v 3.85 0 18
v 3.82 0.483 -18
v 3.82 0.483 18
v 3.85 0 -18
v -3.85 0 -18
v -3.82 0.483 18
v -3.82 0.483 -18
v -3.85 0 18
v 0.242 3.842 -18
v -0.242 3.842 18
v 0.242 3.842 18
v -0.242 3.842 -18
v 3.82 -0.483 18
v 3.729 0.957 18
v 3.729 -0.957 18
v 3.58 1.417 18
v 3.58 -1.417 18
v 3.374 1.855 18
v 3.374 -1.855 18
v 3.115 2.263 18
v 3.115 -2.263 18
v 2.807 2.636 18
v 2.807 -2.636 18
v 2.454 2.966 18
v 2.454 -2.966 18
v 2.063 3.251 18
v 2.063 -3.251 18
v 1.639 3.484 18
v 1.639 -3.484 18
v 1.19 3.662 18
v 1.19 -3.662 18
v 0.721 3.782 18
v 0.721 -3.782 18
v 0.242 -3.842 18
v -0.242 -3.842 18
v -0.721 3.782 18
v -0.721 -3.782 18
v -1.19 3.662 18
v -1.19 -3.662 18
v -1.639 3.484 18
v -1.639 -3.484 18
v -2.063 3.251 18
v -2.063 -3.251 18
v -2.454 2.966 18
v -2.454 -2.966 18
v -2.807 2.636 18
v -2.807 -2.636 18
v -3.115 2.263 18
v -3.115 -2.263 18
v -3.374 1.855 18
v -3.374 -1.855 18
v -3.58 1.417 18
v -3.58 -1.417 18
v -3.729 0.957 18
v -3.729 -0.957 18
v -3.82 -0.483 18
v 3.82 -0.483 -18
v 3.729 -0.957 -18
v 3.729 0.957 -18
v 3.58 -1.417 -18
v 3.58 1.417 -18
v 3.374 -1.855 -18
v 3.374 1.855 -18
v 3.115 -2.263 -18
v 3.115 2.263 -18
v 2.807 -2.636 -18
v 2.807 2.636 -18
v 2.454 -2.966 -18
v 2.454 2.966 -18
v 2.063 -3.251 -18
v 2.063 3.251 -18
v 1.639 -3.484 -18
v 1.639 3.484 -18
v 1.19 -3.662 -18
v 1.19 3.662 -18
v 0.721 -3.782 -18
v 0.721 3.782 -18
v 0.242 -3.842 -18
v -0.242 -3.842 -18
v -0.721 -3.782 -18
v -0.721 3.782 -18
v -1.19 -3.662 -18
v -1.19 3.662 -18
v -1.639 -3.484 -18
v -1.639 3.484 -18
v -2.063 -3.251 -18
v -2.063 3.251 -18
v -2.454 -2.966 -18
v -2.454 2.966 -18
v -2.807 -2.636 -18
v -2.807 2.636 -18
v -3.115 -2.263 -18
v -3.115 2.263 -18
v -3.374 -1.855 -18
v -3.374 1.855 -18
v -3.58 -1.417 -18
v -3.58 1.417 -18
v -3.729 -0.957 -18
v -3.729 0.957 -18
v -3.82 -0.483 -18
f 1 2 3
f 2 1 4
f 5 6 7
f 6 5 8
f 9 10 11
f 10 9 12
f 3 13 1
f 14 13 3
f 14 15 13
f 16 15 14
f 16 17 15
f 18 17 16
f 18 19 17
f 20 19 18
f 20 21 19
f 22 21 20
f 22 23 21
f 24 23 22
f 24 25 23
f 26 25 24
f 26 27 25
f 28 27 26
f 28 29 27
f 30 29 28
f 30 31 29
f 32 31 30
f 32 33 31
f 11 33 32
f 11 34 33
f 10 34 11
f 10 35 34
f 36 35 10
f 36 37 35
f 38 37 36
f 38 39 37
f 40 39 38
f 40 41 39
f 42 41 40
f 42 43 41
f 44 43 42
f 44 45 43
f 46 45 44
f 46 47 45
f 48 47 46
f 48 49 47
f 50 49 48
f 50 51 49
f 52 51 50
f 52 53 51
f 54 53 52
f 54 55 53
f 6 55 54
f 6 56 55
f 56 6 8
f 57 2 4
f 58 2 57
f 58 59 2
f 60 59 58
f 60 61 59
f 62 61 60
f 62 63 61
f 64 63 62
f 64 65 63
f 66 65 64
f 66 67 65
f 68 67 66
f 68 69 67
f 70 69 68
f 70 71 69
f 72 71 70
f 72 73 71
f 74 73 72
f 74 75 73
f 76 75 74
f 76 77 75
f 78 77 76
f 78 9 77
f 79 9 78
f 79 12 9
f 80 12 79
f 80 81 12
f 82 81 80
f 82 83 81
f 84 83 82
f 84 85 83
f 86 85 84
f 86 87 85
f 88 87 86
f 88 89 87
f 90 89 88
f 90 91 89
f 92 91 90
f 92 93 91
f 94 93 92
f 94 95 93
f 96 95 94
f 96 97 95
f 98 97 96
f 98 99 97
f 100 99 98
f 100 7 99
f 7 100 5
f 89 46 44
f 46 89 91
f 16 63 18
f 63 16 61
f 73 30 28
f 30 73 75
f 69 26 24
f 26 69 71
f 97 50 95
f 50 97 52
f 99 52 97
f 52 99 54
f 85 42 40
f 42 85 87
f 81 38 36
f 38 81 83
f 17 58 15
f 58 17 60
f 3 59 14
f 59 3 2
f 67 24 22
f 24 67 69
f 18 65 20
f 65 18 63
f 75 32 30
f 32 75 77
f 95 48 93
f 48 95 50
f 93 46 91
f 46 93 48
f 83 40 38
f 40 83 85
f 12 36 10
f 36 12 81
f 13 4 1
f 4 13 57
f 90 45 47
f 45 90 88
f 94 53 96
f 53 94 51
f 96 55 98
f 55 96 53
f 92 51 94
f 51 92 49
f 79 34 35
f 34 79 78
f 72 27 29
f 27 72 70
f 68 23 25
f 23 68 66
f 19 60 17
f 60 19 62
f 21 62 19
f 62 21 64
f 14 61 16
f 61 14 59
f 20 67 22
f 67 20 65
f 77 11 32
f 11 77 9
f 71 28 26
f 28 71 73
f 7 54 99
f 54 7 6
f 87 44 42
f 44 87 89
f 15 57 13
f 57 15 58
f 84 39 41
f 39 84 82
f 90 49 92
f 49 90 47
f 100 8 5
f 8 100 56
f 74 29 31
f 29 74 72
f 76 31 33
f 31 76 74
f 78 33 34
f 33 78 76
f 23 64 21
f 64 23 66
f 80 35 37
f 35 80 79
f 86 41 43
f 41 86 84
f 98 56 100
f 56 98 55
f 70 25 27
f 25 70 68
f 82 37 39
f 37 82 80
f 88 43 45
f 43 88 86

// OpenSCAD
$fn = 50;


difference() {
	union() {
		translate(v = [0, 0, -18.0000000000]) {
			cylinder(h = 36, r = 3.8500000000);
		}
	}
	union() {
		translate(v = [0, 0, -100.0000000000]) {
			cylinder(h = 200, r = 0);
		}
	}
}
